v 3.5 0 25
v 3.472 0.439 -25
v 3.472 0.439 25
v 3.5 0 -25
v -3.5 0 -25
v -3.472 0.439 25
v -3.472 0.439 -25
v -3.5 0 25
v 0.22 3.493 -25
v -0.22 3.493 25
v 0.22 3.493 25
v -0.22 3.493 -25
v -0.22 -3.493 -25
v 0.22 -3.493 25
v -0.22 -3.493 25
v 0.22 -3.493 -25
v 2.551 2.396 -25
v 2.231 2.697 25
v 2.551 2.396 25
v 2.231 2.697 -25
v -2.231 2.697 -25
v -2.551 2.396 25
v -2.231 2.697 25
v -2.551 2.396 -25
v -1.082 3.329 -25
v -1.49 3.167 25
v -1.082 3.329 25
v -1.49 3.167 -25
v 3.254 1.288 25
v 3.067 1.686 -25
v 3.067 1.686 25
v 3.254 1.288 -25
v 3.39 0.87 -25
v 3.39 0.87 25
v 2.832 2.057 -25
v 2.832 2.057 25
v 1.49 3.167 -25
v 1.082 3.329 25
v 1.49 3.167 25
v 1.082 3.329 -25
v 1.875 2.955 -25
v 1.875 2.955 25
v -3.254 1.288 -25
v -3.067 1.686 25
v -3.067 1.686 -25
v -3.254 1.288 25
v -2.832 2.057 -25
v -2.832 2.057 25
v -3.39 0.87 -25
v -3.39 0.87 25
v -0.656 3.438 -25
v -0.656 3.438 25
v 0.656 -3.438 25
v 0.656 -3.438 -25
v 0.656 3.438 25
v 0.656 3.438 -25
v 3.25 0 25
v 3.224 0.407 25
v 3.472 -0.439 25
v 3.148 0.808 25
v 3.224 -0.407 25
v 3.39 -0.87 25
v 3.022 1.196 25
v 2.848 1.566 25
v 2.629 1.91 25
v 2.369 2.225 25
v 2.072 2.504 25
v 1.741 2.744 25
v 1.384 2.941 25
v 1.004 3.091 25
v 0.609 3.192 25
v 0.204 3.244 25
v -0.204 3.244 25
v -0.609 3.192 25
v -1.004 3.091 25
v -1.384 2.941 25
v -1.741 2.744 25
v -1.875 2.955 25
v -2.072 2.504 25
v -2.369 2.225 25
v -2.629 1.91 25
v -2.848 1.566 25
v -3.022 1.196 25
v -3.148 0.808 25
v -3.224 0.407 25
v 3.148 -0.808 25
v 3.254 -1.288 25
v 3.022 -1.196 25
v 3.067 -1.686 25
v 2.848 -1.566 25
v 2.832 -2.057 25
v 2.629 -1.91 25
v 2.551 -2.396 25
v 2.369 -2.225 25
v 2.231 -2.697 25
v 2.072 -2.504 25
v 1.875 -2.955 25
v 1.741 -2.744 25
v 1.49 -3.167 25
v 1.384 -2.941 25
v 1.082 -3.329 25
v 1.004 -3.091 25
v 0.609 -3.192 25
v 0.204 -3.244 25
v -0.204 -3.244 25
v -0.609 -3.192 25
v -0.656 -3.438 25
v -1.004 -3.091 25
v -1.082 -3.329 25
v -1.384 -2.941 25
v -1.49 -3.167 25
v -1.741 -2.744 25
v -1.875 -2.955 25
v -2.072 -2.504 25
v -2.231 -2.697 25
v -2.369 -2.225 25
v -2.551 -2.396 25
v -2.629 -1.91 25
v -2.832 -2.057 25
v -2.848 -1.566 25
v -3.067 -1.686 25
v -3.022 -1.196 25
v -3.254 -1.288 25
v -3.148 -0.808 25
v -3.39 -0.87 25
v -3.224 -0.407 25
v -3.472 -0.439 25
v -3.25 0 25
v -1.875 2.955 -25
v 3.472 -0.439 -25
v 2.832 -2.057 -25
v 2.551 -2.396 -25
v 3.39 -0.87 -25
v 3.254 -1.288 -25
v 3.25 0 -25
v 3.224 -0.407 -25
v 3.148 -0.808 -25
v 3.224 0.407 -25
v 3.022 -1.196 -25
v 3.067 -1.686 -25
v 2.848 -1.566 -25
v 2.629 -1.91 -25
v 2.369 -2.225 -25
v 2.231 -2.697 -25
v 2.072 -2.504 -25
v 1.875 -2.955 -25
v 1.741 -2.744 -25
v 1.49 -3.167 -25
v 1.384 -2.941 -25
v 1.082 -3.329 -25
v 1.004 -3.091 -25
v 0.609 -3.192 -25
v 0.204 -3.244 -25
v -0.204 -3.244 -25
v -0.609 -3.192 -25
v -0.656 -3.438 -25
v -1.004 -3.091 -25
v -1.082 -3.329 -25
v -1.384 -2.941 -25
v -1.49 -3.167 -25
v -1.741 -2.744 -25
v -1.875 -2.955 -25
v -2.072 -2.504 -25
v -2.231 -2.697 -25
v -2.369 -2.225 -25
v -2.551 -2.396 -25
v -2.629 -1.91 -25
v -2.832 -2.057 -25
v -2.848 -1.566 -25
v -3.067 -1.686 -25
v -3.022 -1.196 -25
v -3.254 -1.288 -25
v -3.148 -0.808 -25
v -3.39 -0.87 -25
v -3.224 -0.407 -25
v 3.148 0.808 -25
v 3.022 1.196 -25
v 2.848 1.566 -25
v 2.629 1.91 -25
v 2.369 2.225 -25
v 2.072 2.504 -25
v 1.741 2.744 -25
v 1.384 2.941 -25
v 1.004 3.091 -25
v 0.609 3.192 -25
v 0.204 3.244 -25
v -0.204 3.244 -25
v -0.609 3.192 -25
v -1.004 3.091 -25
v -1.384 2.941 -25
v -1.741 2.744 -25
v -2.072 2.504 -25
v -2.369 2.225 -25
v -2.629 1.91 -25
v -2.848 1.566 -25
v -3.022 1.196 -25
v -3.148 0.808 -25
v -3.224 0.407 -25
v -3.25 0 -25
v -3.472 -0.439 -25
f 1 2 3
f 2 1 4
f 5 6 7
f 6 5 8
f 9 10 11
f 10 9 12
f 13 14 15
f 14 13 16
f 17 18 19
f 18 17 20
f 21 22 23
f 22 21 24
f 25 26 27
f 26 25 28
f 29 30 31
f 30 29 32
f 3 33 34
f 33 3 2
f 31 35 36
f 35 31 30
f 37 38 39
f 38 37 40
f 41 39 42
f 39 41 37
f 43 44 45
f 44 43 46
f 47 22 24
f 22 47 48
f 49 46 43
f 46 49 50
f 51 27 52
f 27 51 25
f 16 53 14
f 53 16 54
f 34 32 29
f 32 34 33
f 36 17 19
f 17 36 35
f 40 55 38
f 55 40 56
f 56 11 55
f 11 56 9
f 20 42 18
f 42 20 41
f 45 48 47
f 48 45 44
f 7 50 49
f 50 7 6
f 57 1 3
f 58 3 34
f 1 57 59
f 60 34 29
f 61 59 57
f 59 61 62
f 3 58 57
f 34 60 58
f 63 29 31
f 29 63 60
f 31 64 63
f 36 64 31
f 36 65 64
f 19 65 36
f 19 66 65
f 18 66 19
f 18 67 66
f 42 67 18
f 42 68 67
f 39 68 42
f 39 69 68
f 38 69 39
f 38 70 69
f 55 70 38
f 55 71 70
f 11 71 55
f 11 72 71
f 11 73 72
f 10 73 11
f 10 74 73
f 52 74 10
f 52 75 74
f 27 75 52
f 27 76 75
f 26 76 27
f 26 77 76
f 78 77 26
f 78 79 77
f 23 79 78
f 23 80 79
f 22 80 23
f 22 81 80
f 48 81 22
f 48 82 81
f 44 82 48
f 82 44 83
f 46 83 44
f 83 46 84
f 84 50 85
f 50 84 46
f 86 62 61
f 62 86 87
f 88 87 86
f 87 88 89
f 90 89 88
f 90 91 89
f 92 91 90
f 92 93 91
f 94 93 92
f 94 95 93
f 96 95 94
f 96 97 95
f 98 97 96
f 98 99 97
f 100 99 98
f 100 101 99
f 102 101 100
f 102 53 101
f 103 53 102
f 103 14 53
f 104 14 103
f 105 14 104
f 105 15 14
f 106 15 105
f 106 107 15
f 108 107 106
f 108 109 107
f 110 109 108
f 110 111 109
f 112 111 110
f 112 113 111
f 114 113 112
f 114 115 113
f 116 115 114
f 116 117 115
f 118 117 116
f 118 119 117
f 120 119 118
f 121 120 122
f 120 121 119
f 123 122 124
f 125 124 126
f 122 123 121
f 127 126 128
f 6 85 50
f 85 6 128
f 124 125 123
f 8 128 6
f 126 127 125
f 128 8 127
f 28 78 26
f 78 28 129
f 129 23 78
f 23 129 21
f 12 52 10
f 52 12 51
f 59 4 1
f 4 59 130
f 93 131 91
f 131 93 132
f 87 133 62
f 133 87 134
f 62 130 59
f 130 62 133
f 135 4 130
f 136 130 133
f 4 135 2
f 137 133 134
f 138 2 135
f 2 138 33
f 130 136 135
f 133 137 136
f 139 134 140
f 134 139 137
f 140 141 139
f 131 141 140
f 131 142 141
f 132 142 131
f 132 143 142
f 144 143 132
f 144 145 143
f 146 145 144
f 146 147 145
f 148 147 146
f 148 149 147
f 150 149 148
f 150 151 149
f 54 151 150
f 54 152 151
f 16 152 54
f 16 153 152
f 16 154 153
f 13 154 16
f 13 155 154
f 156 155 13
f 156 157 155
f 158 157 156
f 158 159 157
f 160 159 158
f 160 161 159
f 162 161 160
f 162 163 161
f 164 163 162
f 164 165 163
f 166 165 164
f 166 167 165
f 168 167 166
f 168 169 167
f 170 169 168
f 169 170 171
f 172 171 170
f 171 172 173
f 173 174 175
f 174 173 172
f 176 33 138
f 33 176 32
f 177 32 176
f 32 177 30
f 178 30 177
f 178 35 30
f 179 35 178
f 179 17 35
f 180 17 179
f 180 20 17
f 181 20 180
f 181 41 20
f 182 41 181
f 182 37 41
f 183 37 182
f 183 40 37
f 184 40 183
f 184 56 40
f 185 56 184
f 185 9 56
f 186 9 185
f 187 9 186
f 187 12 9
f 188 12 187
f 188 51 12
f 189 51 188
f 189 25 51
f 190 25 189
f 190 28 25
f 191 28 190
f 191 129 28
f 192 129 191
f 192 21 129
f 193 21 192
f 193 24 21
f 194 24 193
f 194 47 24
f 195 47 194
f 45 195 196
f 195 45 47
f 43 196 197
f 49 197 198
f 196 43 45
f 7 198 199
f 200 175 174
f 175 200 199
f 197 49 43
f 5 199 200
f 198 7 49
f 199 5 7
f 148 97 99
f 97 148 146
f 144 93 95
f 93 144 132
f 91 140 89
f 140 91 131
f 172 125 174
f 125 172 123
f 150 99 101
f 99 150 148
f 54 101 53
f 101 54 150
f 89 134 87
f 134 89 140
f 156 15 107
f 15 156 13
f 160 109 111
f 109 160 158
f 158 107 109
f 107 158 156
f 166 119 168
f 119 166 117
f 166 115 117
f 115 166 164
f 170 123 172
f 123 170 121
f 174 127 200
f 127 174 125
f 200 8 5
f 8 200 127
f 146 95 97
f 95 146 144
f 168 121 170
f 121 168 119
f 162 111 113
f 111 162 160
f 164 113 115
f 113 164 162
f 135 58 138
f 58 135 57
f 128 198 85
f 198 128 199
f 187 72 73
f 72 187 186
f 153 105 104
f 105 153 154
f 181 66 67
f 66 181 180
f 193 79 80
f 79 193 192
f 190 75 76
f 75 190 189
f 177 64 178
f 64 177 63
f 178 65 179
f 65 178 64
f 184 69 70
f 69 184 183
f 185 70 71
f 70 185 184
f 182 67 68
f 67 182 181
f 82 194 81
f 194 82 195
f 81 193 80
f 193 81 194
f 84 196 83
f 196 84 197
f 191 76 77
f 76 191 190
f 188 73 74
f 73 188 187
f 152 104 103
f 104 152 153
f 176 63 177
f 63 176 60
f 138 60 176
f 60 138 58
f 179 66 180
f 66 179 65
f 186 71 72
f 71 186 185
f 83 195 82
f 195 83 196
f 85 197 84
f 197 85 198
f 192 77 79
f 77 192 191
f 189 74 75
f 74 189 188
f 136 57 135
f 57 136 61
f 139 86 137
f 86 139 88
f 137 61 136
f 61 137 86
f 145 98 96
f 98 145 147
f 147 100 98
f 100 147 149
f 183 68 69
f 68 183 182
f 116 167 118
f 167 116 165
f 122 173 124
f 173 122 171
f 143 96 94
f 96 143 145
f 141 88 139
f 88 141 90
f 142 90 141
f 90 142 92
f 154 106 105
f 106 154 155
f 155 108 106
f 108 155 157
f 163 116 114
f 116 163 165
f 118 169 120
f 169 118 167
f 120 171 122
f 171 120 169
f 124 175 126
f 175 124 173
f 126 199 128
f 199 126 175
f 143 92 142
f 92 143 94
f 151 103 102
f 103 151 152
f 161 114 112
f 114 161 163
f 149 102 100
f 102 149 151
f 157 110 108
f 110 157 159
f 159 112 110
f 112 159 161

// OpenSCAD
$fn = 50;


difference() {
	union() {
		translate(v = [0, 0, -25.0000000000]) {
			cylinder(h = 50, r = 3.5000000000);
		}
	}
	union() {
		translate(v = [0, 0, -100.0000000000]) {
			cylinder(h = 200, r = 3.2500000000);
		}
	}
}
